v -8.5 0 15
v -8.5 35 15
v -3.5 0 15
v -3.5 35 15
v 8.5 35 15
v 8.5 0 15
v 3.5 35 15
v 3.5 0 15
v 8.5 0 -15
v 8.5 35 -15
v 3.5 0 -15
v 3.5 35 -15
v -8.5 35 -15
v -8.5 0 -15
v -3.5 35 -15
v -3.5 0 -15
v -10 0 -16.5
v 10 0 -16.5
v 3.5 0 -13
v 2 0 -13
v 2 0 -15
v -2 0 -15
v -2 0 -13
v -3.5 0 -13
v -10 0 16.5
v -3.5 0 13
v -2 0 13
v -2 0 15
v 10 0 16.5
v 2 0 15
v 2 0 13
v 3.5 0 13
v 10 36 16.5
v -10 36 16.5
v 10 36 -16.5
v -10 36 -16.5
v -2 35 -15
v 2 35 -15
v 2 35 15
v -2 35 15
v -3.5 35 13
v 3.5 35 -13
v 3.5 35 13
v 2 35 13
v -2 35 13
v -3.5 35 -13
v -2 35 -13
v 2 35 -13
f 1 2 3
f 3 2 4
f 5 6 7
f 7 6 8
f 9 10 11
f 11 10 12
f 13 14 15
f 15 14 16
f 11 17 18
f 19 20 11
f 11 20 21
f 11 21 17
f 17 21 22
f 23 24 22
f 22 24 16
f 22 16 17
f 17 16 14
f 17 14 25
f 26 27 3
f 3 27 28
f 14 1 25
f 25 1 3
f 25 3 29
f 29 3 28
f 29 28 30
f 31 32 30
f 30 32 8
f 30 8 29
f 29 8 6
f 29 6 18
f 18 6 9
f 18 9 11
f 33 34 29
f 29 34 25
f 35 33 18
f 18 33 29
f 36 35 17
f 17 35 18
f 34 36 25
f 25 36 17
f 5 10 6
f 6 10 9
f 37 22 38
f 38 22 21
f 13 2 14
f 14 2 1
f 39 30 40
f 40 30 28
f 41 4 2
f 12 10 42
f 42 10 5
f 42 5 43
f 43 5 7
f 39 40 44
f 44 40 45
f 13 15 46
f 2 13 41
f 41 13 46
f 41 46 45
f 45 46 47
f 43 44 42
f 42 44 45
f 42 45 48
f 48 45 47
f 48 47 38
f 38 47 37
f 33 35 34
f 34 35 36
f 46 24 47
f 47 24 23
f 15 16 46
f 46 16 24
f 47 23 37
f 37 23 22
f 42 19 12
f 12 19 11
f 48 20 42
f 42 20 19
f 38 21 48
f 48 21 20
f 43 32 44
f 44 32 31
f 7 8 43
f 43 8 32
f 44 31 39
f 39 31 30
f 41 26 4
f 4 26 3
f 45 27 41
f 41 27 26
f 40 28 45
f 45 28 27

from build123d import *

# Parameters (mm, degrees)
SKETCH1_W           = 20
SKETCH1_H           = 33
SKETCH1_W_2         = 17
SKETCH1_H_2         = 30
BOSS_EXTRUDE1_DEPTH = 35
SKETCH2_W           = 20
SKETCH2_H           = 33
BOSS_EXTRUDE2_DEPTH = 1
SKETCH3_W           = 1.5
SKETCH3_H           = 2
BOSS_EXTRUDE3_DEPTH = 35


with BuildPart() as part:
    # Sketch1 → Boss-Extrude1 (new body)
    with BuildSketch(Plane(origin=(0, 0, 0), x_dir=(1, 0, 0), z_dir=(0, 1, 0))):
        Rectangle(SKETCH1_W, SKETCH1_H)
        Rectangle(SKETCH1_W_2, SKETCH1_H_2, mode=Mode.SUBTRACT)
    extrude(amount=BOSS_EXTRUDE1_DEPTH)

    # Sketch2 → Boss-Extrude2 (add)
    with BuildSketch(Plane(origin=(0, 35, 0), x_dir=(1, 0, 0), z_dir=(0, 1, 0))):
        Rectangle(SKETCH2_W, SKETCH2_H)
    extrude(amount=BOSS_EXTRUDE2_DEPTH)

    # Sketch3 → Boss-Extrude3 (add)
    with BuildSketch(Plane.XZ):
        with Locations((-2.75, -14)):
            Rectangle(SKETCH3_W, SKETCH3_H)
        with Locations((2.75, -14)):
            Rectangle(SKETCH3_W, SKETCH3_H)
        with Locations((2.75, 14)):
            Rectangle(SKETCH3_W, SKETCH3_H)
        with Locations((-2.75, 14)):
            Rectangle(SKETCH3_W, SKETCH3_H)
    extrude(amount=-BOSS_EXTRUDE3_DEPTH)


solid = part.part
